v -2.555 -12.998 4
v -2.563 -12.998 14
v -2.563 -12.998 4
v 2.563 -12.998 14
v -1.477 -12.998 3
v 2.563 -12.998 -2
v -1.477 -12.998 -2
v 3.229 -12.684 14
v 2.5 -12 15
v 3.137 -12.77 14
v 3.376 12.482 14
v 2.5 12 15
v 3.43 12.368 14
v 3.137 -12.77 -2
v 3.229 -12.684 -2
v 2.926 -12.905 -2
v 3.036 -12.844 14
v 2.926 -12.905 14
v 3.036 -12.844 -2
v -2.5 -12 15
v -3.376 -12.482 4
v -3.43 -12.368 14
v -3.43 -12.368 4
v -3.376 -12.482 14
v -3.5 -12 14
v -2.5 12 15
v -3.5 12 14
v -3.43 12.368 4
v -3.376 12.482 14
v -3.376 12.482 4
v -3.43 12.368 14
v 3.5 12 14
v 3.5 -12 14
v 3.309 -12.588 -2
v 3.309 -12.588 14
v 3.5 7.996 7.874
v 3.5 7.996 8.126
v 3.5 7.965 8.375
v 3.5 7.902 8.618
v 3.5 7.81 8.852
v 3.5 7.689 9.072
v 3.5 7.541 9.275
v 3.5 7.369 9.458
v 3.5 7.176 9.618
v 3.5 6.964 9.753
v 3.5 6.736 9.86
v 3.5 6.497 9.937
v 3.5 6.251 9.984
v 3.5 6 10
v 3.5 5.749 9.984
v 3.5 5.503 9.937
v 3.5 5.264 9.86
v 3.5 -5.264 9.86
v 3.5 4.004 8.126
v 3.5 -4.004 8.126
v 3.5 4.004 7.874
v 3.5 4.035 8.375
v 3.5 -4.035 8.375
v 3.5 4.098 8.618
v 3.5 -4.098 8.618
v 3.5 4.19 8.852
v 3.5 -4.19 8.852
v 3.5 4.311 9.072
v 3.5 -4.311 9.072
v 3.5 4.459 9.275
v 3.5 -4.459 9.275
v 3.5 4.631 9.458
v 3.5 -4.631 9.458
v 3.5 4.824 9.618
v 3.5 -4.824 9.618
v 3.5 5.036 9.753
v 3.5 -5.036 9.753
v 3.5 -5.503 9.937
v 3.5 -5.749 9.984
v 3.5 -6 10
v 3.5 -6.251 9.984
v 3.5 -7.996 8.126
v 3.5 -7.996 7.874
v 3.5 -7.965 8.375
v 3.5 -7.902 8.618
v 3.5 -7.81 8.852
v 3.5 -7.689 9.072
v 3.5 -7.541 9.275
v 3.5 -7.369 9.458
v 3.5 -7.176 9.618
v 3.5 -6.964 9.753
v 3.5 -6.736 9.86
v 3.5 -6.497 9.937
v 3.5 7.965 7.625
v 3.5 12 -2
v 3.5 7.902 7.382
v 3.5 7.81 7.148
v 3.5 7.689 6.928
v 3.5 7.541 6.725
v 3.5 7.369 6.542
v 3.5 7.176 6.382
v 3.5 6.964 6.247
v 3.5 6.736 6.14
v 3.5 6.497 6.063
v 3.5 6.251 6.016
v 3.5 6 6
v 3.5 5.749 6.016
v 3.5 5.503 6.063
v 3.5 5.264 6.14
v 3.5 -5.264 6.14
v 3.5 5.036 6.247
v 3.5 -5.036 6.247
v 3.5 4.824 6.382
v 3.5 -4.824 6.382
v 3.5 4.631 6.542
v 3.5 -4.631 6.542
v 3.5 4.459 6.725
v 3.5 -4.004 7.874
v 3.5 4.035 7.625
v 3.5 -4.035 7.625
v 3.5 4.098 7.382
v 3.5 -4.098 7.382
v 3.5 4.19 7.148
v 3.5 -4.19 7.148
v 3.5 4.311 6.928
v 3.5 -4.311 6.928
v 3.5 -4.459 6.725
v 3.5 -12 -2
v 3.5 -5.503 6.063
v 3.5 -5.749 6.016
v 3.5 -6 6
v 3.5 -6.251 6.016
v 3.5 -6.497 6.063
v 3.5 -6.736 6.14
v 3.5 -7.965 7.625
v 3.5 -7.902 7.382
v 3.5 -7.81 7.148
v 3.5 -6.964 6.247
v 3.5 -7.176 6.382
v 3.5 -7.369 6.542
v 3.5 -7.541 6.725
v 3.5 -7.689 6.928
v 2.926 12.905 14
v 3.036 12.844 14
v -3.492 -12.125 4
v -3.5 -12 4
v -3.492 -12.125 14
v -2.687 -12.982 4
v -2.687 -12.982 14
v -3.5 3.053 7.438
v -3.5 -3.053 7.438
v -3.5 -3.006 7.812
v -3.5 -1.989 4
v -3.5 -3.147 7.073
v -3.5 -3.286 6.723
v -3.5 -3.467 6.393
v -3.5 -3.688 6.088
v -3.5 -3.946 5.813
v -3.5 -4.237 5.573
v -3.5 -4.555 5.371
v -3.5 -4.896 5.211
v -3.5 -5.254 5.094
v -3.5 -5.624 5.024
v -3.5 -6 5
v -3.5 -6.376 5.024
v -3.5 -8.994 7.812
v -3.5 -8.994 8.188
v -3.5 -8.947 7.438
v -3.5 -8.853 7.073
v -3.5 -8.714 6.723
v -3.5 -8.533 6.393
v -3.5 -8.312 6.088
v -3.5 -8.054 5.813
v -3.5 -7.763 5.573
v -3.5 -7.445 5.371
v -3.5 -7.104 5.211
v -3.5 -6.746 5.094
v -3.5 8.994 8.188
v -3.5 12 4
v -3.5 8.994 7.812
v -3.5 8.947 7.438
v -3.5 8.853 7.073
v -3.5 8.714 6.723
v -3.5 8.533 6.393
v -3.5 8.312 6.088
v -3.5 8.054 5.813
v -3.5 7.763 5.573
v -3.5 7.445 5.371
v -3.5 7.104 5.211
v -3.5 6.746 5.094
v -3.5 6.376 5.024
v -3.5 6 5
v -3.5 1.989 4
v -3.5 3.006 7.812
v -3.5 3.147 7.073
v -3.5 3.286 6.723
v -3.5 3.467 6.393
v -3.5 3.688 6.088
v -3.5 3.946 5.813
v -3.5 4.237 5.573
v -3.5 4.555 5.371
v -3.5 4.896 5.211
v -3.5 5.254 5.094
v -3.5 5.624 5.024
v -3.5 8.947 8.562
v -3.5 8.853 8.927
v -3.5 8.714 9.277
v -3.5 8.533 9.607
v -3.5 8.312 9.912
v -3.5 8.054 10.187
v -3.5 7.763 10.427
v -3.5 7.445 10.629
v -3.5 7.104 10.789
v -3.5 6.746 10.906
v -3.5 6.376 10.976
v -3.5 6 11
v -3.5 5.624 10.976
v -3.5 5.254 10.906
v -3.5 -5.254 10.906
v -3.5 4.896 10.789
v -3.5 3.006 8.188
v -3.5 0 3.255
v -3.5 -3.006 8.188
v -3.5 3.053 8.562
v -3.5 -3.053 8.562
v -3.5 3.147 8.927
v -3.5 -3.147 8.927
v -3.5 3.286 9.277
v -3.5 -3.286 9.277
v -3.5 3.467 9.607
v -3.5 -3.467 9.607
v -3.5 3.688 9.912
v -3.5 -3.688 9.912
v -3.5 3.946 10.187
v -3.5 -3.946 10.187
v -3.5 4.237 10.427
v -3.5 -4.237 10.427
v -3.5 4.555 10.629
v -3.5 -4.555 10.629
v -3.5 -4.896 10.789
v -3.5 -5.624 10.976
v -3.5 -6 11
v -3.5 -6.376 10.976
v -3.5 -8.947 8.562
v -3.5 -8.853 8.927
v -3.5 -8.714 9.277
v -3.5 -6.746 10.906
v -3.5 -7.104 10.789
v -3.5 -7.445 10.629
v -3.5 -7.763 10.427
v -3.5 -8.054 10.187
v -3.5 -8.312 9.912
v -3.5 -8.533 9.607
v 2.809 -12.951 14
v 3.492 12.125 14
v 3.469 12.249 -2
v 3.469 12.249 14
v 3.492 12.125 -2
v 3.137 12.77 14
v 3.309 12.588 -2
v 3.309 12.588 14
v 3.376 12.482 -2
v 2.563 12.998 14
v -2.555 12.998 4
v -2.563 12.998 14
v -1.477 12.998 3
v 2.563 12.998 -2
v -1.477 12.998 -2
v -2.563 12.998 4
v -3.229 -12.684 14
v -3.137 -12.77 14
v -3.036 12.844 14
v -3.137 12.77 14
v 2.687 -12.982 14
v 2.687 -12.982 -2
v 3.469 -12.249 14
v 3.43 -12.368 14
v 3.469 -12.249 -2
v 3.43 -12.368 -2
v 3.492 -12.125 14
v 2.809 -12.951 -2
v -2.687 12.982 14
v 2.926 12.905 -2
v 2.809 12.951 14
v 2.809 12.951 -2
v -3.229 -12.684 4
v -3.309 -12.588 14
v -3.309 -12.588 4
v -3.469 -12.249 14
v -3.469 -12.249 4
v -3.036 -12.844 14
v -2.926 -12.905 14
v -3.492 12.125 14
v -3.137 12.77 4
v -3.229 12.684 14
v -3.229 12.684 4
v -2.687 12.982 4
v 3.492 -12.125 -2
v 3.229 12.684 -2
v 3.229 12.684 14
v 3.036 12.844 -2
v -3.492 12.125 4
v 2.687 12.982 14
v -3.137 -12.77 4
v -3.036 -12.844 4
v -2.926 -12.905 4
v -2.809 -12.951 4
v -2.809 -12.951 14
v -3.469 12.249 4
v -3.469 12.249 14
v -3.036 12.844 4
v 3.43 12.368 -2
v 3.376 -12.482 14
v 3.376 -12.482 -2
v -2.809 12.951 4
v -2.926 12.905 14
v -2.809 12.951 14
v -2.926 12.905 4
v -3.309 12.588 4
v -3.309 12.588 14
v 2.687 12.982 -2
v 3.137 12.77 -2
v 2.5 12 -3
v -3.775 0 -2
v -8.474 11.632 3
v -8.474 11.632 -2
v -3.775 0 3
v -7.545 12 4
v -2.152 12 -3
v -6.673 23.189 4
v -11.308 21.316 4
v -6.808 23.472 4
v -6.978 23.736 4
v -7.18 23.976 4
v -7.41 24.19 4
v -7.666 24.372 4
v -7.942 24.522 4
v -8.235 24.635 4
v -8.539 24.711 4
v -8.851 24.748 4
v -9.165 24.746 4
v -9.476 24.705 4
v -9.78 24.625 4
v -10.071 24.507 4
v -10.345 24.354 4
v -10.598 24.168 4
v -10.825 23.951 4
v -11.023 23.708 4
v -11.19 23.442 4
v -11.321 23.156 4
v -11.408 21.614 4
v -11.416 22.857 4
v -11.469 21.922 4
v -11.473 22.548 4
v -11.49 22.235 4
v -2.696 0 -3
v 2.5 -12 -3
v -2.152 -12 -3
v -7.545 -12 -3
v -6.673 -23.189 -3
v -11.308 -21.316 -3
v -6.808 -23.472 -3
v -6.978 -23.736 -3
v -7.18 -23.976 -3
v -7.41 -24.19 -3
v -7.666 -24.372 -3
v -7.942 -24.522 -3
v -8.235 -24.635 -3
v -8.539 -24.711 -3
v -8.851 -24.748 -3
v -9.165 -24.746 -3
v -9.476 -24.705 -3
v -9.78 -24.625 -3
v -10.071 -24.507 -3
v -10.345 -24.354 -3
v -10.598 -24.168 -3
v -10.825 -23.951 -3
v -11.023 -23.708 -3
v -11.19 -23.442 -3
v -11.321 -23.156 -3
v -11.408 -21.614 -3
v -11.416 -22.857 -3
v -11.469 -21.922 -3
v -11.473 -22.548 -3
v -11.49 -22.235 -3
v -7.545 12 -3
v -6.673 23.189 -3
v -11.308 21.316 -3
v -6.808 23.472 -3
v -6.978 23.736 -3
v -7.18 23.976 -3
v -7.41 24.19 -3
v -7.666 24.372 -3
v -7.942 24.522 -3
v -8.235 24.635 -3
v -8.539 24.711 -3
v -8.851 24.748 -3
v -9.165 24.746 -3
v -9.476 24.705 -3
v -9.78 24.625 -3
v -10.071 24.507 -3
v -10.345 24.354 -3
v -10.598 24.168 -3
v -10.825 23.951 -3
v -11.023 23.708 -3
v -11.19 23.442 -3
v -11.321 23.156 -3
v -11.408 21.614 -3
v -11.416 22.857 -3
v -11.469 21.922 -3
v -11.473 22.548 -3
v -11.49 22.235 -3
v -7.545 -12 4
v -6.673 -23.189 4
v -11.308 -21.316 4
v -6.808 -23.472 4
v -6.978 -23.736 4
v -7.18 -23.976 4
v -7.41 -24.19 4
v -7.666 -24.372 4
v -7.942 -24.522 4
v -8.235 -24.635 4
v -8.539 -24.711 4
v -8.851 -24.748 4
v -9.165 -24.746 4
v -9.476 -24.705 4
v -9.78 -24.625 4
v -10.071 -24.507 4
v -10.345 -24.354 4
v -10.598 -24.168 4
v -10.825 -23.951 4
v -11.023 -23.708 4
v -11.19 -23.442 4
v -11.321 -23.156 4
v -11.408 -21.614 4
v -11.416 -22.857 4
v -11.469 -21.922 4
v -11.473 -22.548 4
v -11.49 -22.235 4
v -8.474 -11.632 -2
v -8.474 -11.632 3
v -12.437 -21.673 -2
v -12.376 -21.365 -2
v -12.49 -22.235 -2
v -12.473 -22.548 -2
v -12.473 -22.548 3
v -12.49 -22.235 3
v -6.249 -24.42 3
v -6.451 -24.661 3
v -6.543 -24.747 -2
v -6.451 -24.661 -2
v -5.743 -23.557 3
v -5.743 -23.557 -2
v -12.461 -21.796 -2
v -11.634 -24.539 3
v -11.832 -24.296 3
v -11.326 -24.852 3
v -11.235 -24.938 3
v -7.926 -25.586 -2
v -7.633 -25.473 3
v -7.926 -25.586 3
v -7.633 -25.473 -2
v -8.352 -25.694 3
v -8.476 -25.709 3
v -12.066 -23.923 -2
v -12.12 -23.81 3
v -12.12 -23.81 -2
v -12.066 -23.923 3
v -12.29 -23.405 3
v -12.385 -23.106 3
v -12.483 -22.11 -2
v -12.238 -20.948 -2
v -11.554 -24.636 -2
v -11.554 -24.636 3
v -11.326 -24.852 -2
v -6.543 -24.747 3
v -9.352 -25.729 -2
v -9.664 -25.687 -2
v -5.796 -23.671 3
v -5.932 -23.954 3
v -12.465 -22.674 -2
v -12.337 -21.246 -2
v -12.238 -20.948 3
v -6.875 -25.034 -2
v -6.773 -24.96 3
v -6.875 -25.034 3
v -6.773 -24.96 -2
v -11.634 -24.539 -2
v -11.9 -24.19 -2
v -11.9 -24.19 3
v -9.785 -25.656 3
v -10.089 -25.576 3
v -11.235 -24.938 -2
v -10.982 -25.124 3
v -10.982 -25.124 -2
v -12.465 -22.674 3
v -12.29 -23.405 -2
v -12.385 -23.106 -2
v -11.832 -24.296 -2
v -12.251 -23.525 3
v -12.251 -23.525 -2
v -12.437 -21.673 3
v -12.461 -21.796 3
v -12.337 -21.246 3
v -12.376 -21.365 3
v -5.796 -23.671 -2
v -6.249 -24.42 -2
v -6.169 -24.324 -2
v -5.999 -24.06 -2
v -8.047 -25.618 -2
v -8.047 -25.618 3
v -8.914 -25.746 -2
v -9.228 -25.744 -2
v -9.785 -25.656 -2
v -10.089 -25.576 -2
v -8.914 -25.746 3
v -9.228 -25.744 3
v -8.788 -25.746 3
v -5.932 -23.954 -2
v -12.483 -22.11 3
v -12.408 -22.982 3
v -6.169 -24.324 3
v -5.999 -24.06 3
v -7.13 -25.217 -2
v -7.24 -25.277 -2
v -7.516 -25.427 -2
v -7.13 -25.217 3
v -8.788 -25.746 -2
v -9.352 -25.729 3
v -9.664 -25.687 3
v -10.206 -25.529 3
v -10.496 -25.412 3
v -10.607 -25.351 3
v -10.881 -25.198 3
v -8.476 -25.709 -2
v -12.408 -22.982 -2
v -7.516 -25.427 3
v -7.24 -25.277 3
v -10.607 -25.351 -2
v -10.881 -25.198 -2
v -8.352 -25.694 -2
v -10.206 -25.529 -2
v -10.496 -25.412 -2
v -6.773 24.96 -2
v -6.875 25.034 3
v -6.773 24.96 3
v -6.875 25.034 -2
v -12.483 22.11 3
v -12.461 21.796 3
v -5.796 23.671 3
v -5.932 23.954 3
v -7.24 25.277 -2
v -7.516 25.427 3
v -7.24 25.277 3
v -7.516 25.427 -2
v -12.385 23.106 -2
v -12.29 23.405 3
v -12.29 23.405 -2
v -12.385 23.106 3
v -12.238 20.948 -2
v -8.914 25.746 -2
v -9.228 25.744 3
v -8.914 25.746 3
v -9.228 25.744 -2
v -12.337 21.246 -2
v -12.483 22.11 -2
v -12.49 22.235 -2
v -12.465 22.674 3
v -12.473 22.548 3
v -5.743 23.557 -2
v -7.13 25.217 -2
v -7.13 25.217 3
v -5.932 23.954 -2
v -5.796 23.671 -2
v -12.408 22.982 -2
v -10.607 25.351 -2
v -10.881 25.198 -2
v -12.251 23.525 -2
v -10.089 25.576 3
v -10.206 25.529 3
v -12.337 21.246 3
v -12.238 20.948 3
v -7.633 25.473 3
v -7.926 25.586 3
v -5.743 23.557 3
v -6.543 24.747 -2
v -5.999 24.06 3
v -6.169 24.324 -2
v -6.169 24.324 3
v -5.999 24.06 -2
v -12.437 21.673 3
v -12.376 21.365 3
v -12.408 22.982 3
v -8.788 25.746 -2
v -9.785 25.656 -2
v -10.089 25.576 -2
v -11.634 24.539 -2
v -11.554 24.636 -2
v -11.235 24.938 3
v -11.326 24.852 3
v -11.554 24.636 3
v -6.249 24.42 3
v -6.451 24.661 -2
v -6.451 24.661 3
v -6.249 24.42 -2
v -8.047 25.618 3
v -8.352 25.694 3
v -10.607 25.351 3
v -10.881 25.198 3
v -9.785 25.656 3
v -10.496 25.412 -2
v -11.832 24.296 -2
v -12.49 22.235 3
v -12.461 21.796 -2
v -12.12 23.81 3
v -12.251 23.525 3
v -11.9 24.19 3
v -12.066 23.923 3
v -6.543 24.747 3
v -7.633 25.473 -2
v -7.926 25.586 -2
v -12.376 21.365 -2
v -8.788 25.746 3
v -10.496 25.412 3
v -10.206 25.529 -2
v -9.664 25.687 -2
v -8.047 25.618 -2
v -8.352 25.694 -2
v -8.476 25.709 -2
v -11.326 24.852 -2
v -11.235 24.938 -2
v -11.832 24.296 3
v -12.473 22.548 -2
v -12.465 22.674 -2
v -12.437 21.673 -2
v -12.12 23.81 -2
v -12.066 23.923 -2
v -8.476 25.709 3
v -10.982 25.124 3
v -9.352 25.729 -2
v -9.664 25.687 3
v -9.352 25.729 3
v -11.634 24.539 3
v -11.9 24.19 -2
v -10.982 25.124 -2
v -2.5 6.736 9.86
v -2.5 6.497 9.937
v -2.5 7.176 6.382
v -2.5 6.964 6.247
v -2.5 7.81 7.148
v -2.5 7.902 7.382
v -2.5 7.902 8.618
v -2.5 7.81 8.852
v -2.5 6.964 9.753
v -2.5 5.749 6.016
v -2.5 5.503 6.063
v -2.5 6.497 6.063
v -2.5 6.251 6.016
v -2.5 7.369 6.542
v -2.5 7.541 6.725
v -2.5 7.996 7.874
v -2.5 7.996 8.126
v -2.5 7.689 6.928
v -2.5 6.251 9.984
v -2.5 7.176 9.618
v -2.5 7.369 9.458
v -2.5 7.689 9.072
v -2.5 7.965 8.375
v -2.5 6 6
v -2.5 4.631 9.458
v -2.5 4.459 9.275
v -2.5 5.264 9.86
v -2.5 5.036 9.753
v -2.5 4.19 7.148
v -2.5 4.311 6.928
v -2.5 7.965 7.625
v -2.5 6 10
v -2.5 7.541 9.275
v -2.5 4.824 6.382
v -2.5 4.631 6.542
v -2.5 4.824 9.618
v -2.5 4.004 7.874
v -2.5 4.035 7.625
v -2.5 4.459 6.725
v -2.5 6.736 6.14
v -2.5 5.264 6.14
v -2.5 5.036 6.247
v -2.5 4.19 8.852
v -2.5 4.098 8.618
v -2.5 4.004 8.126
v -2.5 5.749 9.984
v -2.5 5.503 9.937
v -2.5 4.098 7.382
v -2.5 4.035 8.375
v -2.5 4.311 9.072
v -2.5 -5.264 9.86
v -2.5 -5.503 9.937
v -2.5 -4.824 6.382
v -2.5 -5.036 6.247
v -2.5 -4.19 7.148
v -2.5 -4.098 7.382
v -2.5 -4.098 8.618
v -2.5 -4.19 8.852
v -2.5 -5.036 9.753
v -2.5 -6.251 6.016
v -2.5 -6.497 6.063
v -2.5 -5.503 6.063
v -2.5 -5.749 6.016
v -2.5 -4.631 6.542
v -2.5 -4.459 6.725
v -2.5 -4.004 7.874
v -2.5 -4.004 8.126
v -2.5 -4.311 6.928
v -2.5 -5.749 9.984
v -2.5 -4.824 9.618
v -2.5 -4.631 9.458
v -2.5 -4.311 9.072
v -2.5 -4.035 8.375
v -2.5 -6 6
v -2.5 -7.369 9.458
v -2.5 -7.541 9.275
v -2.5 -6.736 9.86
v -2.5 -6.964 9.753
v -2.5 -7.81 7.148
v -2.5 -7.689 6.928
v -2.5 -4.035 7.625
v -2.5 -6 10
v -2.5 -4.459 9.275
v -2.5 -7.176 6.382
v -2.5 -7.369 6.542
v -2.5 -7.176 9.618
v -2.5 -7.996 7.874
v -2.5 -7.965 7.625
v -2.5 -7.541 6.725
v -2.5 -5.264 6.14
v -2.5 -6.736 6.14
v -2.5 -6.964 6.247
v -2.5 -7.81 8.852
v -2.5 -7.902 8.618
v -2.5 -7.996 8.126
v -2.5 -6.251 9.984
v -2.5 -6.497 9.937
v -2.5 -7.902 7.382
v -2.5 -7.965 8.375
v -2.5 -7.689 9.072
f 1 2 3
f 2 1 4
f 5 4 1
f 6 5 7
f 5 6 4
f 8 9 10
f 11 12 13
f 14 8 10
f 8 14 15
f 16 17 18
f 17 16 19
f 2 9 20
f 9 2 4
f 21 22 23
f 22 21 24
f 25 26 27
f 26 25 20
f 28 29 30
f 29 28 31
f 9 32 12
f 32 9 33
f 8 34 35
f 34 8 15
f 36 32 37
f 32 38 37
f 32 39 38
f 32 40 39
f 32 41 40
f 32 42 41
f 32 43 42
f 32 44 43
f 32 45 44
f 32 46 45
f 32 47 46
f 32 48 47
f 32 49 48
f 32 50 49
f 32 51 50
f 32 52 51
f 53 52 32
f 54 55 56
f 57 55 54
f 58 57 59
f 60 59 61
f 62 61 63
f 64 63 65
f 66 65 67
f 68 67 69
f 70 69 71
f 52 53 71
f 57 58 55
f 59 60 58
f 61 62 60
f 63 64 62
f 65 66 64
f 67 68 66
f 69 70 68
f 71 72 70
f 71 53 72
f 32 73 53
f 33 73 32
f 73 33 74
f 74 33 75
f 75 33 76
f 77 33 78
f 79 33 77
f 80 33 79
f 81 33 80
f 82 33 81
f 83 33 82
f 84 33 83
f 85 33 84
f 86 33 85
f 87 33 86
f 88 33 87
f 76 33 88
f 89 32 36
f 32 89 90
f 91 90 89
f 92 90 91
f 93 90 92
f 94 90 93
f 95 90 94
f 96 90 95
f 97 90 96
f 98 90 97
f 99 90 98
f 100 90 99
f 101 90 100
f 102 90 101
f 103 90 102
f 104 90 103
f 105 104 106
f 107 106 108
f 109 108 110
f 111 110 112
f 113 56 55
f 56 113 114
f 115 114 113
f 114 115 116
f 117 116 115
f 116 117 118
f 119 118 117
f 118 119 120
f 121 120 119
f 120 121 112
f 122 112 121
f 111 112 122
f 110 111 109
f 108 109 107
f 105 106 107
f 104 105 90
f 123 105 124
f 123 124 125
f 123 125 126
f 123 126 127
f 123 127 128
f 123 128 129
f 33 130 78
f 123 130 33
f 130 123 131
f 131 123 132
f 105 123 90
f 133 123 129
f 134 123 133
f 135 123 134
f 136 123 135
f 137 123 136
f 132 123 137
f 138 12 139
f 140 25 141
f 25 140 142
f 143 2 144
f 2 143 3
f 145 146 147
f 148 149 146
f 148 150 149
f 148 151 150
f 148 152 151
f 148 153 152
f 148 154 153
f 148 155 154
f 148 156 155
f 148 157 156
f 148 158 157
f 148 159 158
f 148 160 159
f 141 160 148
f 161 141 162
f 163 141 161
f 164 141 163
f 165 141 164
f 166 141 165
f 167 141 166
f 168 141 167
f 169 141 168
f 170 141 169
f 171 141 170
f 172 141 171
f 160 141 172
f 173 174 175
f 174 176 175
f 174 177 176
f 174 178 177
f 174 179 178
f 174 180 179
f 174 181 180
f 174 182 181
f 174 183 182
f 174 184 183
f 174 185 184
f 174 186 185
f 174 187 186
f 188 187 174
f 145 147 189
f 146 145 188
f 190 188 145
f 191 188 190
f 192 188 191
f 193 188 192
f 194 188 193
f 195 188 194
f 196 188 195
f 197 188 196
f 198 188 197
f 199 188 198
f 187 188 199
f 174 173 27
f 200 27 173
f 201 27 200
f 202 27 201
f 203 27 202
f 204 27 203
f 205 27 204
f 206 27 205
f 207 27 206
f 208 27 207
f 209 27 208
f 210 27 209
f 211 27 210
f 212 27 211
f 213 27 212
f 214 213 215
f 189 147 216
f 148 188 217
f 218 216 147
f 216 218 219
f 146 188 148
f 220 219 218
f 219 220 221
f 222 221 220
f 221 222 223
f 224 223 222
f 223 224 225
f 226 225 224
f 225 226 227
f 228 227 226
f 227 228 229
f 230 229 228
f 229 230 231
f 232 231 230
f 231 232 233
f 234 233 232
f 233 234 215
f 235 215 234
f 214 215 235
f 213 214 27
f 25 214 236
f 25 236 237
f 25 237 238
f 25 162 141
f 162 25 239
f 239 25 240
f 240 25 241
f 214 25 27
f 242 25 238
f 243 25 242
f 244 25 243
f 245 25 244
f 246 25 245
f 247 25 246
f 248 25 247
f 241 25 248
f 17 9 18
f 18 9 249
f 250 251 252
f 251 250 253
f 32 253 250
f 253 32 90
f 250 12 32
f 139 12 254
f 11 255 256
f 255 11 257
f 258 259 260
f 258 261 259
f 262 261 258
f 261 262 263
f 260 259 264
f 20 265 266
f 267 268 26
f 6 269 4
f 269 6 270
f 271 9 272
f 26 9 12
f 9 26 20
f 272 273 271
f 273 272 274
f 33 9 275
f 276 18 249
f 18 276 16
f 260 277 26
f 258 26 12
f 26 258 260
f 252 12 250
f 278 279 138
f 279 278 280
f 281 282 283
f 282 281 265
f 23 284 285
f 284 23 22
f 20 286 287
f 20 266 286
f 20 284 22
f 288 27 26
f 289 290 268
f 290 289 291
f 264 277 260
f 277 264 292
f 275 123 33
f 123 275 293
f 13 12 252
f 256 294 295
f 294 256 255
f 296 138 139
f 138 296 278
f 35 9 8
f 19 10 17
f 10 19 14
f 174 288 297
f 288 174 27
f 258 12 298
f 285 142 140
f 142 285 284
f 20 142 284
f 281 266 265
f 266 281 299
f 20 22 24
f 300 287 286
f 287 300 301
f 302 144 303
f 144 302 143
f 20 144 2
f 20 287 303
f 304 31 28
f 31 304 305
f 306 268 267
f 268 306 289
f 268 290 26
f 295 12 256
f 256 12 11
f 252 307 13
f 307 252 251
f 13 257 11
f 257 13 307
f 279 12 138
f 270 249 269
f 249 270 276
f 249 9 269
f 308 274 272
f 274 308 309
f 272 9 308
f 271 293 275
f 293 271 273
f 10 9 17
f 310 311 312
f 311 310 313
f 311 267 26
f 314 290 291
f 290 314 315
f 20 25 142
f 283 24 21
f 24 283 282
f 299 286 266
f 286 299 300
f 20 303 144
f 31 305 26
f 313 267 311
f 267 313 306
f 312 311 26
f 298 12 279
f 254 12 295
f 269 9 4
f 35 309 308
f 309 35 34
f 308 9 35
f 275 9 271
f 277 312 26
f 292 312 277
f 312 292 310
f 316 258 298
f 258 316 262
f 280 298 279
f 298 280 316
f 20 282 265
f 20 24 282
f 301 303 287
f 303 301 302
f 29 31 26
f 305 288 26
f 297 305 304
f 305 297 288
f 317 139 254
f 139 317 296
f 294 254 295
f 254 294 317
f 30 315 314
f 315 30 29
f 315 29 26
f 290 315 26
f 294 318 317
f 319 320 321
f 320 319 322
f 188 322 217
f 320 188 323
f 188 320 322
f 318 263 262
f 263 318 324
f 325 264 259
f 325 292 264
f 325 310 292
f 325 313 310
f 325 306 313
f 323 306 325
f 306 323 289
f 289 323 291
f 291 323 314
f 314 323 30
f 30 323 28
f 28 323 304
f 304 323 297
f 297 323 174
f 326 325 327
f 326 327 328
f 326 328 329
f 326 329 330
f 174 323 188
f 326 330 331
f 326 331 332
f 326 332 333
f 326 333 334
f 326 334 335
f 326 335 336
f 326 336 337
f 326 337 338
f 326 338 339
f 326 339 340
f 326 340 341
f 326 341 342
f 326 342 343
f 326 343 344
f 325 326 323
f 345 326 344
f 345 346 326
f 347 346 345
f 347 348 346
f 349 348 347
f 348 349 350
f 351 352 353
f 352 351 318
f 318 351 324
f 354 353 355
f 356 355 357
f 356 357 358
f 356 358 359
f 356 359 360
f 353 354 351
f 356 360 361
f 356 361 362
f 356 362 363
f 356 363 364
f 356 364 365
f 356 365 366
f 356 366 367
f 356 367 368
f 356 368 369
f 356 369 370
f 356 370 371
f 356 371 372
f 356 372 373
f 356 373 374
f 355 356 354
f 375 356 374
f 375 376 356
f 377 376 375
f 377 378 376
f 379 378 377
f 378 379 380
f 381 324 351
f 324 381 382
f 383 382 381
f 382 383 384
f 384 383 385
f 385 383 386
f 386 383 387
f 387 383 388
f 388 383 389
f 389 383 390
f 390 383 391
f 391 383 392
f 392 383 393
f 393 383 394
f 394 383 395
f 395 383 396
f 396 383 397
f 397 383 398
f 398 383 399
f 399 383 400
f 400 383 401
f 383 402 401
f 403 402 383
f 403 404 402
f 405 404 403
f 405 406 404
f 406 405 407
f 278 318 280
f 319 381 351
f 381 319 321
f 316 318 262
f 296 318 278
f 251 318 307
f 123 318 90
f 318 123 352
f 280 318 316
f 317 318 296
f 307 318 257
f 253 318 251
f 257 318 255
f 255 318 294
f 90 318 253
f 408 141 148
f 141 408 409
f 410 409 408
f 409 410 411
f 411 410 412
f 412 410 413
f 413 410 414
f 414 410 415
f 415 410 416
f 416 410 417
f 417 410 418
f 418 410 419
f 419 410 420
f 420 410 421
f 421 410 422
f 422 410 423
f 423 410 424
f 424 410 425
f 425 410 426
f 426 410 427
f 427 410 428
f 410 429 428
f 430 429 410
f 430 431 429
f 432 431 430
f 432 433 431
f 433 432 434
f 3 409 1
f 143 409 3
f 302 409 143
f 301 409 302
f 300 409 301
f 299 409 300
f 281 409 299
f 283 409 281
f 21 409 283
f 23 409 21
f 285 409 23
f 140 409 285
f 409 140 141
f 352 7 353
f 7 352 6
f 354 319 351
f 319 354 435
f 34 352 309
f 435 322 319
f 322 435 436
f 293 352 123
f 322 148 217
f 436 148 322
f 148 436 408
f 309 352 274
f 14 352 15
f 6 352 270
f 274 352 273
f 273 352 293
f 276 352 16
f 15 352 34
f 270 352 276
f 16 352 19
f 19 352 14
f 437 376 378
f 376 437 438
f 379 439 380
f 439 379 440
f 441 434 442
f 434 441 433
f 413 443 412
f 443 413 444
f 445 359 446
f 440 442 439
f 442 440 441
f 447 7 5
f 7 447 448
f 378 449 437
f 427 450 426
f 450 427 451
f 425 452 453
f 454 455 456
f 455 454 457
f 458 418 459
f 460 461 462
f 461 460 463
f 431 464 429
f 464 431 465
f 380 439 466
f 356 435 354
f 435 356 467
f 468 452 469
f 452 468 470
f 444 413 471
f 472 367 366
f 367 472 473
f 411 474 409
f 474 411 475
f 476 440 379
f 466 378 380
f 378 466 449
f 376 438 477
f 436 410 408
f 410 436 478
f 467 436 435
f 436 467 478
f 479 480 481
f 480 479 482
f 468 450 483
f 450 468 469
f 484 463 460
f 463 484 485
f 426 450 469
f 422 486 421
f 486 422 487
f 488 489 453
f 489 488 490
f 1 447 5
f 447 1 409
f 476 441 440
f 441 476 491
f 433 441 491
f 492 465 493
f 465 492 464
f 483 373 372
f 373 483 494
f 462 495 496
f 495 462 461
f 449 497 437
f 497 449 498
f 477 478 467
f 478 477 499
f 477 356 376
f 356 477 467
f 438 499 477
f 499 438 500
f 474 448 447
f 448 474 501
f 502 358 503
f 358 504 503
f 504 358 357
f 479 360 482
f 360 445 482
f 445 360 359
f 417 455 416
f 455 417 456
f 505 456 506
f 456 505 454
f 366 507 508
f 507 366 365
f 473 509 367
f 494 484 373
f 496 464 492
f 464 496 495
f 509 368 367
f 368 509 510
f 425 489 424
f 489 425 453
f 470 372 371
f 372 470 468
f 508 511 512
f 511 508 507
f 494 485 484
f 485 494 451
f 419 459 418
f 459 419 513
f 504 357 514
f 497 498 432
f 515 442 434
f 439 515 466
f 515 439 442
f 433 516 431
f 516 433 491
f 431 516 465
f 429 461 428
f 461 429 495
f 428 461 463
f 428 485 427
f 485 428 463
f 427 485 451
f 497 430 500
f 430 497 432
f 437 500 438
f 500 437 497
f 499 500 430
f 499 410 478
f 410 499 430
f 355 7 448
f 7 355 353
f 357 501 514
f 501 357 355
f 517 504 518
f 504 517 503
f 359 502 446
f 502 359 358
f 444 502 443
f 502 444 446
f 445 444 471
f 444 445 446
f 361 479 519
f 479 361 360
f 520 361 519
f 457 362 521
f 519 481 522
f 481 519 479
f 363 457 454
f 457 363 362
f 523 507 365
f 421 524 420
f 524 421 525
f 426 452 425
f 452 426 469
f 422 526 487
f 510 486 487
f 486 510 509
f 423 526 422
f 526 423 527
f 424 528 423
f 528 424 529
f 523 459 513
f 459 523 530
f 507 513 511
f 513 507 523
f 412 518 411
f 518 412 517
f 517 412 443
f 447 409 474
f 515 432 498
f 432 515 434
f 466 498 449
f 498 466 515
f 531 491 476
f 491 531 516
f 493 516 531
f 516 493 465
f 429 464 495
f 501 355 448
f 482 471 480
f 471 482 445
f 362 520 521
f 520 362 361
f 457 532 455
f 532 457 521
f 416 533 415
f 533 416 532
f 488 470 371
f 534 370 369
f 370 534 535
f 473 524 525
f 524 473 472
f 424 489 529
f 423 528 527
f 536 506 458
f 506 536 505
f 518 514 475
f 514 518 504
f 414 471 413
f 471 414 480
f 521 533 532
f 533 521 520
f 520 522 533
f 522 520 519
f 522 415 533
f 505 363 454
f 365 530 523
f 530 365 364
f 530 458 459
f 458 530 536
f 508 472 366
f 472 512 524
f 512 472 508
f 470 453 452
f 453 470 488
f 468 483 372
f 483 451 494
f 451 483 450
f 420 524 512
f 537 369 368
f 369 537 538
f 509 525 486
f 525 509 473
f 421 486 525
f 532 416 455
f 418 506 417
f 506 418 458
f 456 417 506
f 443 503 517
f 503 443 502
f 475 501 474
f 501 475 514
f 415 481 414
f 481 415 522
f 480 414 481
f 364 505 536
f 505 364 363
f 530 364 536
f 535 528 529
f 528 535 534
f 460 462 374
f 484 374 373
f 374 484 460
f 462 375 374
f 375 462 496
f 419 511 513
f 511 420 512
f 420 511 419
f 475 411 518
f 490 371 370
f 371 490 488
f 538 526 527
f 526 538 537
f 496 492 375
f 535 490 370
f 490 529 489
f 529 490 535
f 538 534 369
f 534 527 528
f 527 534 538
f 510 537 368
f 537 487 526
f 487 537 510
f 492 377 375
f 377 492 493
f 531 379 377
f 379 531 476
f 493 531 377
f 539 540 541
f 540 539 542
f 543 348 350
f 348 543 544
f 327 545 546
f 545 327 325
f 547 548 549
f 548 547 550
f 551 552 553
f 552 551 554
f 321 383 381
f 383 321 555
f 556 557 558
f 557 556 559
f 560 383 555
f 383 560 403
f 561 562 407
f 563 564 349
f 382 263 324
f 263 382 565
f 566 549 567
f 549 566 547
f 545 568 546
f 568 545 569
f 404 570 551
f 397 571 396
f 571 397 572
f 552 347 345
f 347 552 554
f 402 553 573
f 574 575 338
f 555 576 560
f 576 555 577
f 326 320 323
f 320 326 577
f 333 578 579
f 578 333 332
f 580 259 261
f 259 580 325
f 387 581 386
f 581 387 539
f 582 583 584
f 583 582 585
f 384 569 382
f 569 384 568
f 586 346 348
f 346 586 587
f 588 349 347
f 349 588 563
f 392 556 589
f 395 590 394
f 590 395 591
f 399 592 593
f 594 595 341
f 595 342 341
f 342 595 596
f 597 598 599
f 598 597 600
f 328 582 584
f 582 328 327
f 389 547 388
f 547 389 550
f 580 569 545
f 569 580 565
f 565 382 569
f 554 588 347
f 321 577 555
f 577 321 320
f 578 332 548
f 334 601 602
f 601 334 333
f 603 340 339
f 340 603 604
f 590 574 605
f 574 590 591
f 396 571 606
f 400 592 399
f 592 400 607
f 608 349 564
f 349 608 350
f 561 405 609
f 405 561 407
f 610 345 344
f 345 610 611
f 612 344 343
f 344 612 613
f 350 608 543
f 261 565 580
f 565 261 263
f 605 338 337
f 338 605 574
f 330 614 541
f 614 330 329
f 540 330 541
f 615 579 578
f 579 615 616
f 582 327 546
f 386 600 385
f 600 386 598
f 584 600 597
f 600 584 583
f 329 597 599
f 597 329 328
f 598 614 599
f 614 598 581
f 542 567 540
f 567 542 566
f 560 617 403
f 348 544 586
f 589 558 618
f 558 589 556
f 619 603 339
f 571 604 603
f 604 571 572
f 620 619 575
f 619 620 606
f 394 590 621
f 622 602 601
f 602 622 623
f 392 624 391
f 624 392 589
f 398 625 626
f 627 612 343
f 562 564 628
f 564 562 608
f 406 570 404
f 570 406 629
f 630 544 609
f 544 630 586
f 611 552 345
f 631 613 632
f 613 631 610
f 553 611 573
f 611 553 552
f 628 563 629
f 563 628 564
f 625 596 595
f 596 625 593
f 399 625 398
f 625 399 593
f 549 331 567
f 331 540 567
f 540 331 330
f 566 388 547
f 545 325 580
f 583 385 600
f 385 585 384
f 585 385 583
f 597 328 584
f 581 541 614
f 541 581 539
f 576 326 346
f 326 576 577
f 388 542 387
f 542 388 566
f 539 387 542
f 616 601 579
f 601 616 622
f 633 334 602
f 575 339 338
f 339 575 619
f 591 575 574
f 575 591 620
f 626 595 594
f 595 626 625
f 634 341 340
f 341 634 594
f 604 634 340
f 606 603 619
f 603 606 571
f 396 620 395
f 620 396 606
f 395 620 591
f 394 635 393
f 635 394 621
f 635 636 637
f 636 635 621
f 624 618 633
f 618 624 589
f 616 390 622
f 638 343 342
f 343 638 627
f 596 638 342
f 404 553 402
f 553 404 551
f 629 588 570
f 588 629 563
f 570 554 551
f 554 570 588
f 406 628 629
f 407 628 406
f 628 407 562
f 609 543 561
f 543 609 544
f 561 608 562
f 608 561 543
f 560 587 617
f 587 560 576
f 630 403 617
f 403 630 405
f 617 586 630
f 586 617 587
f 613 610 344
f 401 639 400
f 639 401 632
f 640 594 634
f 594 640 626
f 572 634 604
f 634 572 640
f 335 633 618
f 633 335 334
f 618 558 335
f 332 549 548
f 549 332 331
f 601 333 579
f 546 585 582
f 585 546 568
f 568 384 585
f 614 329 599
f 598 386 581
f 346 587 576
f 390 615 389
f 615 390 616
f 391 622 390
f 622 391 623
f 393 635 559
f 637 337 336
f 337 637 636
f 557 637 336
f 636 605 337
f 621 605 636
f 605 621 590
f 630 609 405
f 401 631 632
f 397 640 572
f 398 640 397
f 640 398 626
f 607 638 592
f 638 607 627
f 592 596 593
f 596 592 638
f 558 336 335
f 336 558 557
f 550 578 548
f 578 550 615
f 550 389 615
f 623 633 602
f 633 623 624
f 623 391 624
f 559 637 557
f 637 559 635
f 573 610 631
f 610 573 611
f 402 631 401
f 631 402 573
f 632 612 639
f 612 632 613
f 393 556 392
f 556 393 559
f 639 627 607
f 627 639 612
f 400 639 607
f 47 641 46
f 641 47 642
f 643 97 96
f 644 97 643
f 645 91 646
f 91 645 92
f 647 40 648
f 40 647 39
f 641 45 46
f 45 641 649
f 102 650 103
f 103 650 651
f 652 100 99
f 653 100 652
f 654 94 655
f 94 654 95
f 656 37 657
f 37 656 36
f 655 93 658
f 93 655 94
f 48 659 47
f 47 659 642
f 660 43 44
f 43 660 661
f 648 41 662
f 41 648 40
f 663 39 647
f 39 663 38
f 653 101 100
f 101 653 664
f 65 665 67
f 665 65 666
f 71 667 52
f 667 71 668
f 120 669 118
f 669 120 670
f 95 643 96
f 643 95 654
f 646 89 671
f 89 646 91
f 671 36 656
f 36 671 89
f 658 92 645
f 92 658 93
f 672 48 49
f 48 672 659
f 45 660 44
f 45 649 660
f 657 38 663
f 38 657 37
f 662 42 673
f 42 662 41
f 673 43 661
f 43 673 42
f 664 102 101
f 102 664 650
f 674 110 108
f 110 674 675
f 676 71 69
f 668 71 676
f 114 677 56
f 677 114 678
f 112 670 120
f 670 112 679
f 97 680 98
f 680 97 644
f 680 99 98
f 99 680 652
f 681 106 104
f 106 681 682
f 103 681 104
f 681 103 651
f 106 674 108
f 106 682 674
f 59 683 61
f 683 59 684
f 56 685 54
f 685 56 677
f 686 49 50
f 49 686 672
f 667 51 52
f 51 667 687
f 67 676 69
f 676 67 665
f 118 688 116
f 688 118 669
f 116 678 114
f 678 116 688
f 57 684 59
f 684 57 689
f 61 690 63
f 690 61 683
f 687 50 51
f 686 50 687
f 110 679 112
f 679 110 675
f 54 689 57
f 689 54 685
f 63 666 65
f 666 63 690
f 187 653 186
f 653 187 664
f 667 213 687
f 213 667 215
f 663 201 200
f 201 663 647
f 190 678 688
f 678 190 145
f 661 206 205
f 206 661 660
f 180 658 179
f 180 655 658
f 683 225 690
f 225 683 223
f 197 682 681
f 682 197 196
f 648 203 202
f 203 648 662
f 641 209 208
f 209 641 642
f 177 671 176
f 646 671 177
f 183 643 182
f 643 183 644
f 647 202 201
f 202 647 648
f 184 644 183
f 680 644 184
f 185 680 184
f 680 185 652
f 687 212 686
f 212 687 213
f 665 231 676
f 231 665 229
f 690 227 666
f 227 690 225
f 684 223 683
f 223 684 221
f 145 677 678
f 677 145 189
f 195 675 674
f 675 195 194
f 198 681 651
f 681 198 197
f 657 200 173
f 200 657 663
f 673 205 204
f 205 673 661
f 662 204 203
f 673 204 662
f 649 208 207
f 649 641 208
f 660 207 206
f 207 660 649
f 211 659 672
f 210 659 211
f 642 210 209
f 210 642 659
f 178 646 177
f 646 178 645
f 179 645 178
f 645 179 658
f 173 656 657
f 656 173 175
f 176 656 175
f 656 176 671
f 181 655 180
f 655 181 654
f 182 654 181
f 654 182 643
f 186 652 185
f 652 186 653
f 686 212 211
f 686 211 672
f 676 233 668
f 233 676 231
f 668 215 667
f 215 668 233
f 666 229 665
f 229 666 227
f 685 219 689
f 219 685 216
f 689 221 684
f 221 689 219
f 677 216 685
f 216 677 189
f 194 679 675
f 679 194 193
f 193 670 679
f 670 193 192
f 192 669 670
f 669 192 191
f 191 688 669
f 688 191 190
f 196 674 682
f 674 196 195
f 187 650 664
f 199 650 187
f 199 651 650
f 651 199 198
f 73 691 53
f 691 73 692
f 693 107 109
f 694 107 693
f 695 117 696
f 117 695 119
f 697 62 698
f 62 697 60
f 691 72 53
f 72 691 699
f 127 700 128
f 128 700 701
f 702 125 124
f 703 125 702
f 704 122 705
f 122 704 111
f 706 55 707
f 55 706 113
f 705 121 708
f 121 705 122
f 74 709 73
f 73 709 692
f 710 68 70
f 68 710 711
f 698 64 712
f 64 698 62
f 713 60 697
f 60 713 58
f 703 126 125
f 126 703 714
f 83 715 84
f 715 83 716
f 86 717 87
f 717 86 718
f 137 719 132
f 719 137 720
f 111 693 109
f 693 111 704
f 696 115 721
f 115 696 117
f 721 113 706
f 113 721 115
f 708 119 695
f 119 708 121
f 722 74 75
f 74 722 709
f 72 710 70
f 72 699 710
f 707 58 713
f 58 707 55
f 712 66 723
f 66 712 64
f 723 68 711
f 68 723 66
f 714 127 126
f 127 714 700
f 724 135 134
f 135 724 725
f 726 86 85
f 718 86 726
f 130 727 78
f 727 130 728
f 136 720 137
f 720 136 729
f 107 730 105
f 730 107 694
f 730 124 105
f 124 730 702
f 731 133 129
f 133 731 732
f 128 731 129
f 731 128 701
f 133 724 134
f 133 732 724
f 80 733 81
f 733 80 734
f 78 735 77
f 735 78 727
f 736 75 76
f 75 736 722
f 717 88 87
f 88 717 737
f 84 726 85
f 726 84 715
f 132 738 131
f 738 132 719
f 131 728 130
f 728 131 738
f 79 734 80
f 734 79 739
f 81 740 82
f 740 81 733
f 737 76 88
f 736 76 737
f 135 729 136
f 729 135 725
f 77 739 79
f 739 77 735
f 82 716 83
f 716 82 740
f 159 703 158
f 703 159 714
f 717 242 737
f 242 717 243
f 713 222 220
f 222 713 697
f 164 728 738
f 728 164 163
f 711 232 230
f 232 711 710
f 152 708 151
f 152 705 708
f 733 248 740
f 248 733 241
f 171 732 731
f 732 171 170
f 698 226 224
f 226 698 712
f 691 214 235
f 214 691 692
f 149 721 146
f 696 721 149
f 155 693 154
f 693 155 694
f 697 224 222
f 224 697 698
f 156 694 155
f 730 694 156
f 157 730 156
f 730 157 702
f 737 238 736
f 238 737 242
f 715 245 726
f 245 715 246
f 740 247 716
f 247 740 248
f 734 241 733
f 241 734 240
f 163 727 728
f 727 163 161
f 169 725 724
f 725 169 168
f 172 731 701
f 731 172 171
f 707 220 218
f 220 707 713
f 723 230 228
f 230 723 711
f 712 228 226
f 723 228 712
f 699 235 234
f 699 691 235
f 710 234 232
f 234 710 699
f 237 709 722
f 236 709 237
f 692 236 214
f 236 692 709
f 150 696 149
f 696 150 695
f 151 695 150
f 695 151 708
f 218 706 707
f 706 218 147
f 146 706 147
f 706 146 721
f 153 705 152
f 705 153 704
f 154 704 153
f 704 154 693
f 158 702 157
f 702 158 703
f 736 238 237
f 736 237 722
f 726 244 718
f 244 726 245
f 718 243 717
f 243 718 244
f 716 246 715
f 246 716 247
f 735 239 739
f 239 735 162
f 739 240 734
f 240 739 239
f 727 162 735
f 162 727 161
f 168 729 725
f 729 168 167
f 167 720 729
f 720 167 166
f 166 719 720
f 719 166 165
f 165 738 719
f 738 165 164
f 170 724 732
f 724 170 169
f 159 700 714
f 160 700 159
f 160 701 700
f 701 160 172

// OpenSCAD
$fn = 50;
difference(){
    minkowski(){
        union(){
            rotate([0, 0, 22]) translate([0, 24, 0]) union(){
                translate([0, -12, 0]) cube([5, 24, 5], center=true);
                cylinder(5, 2.5, 2.5, center=true);
            }
            rotate([0, 0, 158]) translate([0, 24, 0]) union(){
                translate([0, -12, 0]) cube([5, 24, 5], center=true);
                cylinder(5, 2.5, 2.5, center=true);
            }
            translate([0, 0, 5.5]) cube([5, 24, 16], center=true);
        }
        union(){
            translate([0, 0, .5]) cylinder(1, 1, 0);
            translate([0, 0, -.5]) cylinder(1, 0, 1);
        };
    }
    //translate([0, 6, 8]) rotate([0, 90, 0]) %cylinder(20, 2, 2, center=true);
    translate([5.5, 6, 8]) rotate([0, 90, 0]) union() {
        cylinder(20, 2, 2, center=true);
        translate([0, 0, -8])cylinder(4, 4, 0, center=true);
    }
    translate([5.5, -6, 8]) rotate([0, 90, 0]) union() {
        cylinder(20, 2, 2, center=true);
        translate([0, 0, -8])cylinder(4, 4, 0, center=true);
    }
    //translate([0, -6, 8]) rotate([0, 90, 0]) %cylinder(20, 2, 2, center=true);
}
